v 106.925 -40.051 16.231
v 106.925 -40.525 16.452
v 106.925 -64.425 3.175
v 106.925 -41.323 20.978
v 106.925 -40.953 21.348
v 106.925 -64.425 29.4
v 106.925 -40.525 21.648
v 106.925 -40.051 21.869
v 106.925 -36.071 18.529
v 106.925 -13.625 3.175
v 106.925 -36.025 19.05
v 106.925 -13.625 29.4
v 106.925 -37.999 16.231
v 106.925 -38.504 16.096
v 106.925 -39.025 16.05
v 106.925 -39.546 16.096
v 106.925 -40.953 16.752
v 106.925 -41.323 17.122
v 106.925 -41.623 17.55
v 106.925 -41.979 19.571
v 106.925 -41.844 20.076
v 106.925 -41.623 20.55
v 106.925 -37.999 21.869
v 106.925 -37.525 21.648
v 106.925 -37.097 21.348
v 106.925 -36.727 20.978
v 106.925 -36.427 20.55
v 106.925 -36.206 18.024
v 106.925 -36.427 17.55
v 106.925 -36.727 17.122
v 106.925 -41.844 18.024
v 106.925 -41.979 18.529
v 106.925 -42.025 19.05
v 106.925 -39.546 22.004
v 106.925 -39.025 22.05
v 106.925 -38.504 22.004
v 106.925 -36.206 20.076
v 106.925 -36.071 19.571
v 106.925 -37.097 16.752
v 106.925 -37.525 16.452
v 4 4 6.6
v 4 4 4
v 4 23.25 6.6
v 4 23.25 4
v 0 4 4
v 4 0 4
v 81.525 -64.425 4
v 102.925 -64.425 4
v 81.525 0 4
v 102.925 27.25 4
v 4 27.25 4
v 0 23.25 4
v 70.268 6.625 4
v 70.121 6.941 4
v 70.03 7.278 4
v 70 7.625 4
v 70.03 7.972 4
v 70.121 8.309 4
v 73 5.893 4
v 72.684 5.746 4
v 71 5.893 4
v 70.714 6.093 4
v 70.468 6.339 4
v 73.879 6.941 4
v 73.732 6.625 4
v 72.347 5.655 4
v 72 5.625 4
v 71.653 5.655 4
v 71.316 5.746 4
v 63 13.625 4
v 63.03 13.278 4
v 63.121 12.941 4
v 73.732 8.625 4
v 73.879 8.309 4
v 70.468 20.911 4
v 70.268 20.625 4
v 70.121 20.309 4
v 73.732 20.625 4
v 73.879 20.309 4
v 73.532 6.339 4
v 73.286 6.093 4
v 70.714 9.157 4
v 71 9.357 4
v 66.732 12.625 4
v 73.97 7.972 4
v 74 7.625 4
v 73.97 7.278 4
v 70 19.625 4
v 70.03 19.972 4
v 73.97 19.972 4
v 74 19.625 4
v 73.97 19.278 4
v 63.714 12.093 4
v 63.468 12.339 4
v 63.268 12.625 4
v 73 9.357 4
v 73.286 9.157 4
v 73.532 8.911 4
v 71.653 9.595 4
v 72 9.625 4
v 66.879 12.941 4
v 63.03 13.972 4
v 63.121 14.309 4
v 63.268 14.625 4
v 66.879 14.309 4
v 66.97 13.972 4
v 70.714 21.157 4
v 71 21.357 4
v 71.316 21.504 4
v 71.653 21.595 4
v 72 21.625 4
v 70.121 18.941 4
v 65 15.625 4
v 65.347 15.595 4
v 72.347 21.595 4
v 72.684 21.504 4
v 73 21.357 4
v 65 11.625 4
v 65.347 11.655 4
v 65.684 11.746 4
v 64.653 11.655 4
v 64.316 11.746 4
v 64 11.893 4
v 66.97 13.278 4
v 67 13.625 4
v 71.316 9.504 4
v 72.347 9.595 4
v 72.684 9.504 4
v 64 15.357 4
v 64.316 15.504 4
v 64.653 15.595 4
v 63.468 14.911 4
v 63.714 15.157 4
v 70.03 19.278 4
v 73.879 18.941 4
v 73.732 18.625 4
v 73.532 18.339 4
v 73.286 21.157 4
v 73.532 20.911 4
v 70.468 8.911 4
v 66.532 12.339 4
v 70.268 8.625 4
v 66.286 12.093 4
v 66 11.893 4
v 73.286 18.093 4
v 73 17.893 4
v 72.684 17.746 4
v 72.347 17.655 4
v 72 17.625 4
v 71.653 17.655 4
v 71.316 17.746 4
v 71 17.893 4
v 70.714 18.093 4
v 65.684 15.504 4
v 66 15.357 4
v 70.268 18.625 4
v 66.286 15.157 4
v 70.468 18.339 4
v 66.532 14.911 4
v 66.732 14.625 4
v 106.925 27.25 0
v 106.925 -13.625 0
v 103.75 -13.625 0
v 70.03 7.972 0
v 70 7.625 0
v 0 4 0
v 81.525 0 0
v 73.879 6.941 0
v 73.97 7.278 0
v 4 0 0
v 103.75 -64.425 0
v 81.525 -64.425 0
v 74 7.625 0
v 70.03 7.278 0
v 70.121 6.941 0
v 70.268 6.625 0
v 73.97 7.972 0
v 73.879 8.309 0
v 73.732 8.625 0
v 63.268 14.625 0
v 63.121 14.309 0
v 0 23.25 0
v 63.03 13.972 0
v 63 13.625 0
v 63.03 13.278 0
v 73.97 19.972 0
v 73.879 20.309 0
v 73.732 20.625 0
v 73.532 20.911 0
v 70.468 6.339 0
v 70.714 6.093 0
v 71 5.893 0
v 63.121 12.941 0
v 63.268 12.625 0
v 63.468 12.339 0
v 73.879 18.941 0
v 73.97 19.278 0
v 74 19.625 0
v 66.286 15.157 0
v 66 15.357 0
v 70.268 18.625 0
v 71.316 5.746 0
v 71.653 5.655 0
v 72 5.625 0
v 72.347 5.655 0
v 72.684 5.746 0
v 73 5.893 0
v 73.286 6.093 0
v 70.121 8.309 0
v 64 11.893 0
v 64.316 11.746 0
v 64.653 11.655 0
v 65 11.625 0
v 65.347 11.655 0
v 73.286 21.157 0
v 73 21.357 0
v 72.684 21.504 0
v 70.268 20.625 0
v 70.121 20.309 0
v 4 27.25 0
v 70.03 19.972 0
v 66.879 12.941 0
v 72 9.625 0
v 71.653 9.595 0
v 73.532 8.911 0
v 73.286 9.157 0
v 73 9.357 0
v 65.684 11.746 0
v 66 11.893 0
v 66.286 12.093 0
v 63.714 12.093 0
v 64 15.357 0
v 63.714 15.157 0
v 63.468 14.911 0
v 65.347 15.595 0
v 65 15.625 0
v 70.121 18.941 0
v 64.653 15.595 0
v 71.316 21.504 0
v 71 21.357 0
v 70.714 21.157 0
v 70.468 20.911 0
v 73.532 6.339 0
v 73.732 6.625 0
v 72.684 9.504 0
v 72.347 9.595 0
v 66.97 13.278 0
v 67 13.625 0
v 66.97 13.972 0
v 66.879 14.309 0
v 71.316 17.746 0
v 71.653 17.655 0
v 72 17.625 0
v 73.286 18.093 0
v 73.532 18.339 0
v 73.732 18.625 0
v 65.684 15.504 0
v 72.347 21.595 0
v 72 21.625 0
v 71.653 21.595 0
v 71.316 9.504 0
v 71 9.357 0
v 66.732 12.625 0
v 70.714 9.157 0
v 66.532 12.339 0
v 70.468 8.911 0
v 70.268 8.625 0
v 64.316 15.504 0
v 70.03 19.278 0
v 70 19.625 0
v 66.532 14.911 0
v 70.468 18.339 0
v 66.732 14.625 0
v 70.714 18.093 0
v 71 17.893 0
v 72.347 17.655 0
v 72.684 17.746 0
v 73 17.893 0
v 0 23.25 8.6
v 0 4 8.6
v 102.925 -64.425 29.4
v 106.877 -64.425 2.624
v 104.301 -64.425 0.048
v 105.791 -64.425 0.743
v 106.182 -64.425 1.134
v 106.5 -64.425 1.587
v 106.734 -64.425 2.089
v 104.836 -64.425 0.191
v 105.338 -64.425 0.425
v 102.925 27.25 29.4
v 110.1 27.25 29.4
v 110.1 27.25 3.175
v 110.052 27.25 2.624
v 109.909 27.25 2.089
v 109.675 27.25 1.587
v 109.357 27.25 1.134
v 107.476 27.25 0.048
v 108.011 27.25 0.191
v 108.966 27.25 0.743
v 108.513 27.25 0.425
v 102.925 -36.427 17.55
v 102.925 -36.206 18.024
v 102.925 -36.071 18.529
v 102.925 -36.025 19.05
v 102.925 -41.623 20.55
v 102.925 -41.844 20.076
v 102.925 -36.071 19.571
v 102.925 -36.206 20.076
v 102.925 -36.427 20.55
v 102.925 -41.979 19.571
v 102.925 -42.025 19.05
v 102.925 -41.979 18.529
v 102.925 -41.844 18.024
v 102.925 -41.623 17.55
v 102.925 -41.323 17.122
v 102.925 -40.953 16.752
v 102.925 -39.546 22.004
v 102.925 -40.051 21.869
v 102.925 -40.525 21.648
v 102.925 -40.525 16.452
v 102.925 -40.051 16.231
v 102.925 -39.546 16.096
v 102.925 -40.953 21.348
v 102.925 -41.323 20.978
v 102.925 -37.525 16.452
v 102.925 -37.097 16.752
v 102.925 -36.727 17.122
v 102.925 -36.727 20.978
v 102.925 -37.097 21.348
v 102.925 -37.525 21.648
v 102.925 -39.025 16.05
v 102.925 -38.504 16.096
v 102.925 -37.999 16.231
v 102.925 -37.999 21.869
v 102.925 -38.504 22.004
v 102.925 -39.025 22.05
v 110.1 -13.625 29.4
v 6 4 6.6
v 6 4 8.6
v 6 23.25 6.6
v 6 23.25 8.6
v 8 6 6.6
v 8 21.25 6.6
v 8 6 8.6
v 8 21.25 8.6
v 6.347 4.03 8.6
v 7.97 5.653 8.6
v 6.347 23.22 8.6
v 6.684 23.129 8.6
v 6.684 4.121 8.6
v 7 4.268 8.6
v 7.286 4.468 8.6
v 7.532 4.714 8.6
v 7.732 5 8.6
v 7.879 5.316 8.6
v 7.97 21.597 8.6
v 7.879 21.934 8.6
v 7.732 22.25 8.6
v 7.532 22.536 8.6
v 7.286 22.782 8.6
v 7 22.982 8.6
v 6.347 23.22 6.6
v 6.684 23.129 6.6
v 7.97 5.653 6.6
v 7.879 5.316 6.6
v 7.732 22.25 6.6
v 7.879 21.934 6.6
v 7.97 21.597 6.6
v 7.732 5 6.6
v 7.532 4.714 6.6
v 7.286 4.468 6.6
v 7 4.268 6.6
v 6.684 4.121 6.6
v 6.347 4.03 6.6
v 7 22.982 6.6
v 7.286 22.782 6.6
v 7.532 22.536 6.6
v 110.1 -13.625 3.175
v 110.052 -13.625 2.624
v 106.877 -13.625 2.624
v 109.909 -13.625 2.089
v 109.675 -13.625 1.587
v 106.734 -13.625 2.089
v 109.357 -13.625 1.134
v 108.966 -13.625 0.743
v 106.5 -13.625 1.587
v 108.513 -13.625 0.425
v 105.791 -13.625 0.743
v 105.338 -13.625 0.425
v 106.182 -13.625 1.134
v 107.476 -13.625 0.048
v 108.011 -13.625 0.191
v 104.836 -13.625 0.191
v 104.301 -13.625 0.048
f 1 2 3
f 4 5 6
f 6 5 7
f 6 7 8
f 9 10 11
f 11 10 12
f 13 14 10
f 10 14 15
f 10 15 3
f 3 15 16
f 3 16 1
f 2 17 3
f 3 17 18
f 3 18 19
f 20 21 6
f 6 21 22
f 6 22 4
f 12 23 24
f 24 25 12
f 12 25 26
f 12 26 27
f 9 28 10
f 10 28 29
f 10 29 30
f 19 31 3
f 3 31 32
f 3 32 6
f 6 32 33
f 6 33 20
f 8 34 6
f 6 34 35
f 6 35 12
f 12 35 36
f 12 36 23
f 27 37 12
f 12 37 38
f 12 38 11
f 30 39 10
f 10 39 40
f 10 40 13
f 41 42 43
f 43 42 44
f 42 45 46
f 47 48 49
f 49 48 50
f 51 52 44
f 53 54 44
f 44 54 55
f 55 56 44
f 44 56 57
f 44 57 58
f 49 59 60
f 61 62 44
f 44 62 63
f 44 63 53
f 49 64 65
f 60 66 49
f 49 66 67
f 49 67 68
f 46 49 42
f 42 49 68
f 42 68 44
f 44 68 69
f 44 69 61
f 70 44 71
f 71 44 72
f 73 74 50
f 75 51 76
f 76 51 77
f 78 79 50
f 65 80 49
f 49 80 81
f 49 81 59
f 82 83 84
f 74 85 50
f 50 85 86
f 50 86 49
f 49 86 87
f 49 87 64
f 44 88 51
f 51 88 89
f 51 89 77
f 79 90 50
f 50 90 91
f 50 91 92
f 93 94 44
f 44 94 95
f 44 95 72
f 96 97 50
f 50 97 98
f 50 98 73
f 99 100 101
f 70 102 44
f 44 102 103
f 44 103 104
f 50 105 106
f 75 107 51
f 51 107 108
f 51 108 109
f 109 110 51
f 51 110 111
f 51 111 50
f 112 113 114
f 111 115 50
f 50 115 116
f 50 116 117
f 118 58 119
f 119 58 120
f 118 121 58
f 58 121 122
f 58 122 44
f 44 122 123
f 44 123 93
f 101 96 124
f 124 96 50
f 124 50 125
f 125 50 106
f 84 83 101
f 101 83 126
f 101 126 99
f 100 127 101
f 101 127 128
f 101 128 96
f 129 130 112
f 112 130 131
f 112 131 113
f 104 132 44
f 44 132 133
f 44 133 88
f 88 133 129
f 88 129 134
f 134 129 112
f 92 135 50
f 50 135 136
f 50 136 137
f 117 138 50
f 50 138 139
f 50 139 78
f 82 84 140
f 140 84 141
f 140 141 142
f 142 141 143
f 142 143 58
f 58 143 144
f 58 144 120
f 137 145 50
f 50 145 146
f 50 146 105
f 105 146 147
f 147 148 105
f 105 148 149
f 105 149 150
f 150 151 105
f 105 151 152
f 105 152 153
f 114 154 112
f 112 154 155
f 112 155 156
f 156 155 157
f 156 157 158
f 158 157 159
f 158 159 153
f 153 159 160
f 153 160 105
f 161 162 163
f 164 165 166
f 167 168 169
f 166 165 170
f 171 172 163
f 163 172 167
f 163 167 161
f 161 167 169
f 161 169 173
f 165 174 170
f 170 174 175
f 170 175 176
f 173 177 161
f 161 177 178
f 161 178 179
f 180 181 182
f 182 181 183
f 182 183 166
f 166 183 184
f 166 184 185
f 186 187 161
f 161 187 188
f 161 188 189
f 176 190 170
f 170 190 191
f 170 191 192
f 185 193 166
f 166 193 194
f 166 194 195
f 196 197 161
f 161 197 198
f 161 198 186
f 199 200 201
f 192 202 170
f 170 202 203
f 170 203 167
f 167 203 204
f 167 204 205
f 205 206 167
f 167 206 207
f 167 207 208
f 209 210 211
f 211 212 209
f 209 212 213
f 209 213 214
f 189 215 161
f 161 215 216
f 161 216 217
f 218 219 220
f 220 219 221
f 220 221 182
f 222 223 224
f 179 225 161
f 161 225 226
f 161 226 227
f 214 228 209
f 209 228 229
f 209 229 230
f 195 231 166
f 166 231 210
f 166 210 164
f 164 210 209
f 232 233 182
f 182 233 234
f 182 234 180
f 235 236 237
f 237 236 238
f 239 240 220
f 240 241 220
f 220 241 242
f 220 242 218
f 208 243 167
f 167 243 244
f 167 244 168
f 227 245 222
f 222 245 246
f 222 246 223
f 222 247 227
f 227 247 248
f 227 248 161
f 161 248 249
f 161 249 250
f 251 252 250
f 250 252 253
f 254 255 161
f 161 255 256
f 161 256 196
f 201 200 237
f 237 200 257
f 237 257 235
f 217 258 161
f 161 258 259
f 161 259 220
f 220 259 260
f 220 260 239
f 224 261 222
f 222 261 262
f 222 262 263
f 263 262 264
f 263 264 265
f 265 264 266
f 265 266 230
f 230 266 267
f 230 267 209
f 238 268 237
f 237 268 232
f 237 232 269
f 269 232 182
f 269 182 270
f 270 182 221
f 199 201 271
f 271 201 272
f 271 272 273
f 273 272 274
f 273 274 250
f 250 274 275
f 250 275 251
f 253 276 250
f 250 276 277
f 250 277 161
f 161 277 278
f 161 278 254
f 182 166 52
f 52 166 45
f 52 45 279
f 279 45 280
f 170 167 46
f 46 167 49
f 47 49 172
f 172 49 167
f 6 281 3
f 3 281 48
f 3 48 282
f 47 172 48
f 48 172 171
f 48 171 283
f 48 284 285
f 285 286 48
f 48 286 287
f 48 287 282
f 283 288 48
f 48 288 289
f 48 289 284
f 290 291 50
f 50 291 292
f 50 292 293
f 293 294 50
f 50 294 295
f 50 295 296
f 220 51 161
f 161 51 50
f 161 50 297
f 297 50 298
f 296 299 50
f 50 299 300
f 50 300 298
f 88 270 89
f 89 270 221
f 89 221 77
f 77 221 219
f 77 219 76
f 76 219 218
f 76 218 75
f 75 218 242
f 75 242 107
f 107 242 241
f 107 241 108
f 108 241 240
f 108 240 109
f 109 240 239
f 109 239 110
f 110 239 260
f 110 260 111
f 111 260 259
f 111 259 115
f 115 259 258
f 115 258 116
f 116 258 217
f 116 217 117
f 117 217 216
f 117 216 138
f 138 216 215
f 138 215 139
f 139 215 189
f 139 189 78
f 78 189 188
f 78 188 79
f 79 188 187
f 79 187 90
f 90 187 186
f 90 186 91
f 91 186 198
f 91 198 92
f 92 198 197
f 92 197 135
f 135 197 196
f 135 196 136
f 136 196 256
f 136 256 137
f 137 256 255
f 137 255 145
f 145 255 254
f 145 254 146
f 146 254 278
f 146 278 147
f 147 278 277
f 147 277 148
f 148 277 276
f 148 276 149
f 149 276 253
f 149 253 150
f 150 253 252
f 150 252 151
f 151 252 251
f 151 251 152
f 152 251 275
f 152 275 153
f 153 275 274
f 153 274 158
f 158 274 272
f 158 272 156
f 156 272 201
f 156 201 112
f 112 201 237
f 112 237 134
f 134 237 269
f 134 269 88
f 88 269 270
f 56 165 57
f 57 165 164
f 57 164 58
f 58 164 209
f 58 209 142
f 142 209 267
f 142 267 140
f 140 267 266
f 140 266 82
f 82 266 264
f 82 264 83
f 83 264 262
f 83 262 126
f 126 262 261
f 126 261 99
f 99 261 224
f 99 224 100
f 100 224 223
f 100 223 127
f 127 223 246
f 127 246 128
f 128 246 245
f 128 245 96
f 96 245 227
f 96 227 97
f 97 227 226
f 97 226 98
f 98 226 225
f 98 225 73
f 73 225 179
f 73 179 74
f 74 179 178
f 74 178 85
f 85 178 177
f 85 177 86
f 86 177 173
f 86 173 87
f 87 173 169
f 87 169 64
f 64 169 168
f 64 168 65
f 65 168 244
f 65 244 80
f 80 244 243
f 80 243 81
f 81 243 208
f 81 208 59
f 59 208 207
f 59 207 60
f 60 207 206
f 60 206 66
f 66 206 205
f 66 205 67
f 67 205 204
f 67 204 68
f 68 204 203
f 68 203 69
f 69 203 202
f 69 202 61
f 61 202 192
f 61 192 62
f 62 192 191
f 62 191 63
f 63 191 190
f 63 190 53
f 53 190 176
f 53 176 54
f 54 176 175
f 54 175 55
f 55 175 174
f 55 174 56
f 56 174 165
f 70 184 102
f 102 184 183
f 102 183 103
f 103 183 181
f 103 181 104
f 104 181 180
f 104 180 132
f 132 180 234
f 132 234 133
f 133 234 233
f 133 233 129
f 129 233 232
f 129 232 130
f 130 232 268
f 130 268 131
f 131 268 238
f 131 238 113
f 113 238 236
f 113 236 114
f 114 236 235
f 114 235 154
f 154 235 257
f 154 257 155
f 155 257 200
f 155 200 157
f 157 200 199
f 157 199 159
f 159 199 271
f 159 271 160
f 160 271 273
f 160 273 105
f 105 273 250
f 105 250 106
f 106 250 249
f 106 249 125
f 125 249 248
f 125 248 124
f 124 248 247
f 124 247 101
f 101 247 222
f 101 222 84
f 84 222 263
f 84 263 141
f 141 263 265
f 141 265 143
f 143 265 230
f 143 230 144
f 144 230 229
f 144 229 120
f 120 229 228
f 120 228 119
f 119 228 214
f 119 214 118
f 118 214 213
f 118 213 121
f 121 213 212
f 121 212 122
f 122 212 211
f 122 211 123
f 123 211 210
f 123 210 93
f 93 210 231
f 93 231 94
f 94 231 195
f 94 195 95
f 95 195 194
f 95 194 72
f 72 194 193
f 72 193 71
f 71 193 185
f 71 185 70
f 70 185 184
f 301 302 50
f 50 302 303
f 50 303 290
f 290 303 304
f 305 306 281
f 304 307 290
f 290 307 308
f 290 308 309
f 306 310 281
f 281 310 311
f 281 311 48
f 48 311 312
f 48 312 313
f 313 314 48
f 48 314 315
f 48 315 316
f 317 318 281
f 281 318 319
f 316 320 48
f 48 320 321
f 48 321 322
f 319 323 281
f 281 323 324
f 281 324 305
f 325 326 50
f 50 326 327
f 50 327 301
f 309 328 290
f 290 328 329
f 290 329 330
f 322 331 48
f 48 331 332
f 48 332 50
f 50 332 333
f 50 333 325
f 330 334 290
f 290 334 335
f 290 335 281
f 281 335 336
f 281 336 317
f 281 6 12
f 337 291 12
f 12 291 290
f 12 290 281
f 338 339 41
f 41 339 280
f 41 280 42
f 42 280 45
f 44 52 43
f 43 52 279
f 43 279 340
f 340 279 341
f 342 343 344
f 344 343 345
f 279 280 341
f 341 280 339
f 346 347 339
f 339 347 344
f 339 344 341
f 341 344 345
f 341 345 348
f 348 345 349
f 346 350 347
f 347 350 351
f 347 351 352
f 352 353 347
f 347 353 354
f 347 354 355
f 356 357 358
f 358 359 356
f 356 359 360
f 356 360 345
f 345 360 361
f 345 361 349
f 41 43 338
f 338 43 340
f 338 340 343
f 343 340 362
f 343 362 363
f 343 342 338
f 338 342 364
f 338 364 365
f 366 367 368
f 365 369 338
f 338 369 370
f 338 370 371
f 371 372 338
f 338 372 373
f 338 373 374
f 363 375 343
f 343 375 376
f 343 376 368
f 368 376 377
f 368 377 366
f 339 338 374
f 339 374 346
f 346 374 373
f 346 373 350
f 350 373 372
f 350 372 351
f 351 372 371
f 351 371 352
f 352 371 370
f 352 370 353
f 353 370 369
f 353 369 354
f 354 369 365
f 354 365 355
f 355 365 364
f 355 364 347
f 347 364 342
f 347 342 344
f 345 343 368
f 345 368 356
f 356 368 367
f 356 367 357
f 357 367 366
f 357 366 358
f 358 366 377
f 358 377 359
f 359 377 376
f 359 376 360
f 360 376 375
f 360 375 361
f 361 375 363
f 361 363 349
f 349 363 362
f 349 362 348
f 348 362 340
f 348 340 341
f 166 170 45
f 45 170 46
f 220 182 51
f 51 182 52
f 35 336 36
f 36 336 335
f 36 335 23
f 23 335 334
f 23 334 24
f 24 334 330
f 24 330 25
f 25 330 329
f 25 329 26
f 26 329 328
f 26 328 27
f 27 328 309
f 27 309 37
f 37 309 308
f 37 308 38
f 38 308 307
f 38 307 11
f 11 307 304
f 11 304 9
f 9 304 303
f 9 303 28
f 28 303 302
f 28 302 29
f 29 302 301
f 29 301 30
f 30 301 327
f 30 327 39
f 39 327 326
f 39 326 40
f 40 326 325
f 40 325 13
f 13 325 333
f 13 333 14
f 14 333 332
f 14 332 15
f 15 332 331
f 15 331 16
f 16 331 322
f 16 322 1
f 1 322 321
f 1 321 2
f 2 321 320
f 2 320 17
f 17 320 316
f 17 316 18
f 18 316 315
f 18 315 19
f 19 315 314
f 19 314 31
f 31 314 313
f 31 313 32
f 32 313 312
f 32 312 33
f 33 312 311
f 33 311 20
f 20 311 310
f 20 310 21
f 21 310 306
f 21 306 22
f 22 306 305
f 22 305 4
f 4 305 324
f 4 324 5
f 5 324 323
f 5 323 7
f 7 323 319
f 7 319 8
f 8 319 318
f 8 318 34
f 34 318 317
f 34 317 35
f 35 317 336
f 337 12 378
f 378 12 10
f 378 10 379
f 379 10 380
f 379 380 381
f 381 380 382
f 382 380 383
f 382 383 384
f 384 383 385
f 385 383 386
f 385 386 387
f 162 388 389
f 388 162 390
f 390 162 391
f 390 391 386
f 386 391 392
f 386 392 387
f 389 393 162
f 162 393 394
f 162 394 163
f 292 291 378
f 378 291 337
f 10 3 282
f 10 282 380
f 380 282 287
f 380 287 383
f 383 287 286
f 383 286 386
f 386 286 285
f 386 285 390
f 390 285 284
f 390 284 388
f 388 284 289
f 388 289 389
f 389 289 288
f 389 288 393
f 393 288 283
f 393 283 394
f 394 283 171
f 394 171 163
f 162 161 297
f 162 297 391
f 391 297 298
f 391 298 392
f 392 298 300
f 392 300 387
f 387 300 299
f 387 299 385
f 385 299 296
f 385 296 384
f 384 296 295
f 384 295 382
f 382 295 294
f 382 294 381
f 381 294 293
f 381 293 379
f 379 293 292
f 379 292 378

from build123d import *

# Parameters (mm, degrees)
SKETCH1_R                      = 2
PROFILEBOSS_EXTRUDE1_DEPTH     = 4
CORNERBOSS_EXTRUDE2_DEPTH      = 0.0001
CORNERBOSS_EXTRUDE2_DEPTH_BACK = 25.4
SKETCH2_W                      = 4
SKETCH2_H                      = 91.675
BOSS_EXTRUDE3_DEPTH            = 0.0001
BOSS_EXTRUDE3_DEPTH_BACK       = 2.6
SKETCH3_W                      = 4
SKETCH3_H                      = 19.25
BOSS_EXTRUDE4_DEPTH            = 0.0001
BOSS_EXTRUDE4_DEPTH_BACK       = 2
SKETCH5_W                      = 8
SKETCH5_H                      = 19.25
FILLET1_R                      = 2
CHAMFER1_SIZE                  = 4
VSMOUNTHOLECUT_EXTRUDE1_REACH  = 126.934
SKETCH6_R                      = 3
SKETCH7_W                      = 29.4
SKETCH7_H                      = 40.875
THICKSIDEBOSS_EXTRUDE5_DEPTH   = 3.175
FILLET3_R                      = 3.175


with BuildPart() as part:
    # Sketch1 → ProfileBoss-Extrude1 (new body)
    with BuildSketch(Plane.XY):
        Polygon((0, 0), (81.525, 0), (81.525, -64.425), (106.925, -64.425), (106.925, 27.25), (0, 27.25), align=None)
        with Locations((72, 19.625)):
            Circle(SKETCH1_R, mode=Mode.SUBTRACT)
        with Locations((72, 7.625)):
            Circle(SKETCH1_R, mode=Mode.SUBTRACT)
        with Locations((65, 13.625)):
            Circle(SKETCH1_R, mode=Mode.SUBTRACT)
    extrude(amount=PROFILEBOSS_EXTRUDE1_DEPTH)

    # Sketch2 → CornerBoss-Extrude2 (add, two sides: drawn at the far end of the back side and taken through both)
    with BuildSketch(Plane(origin=(0, 0, 4), x_dir=(-1, 0, 0), z_dir=(0, 0, -1)).offset(-CORNERBOSS_EXTRUDE2_DEPTH_BACK)):
        with Locations((-104.925, -18.5875)):
            Rectangle(SKETCH2_W, SKETCH2_H)
    extrude(amount=CORNERBOSS_EXTRUDE2_DEPTH + CORNERBOSS_EXTRUDE2_DEPTH_BACK)

    # Sketch3 → Boss-Extrude3 (add, two sides: drawn at the far end of the back side and taken through both)
    with BuildSketch(Plane(origin=(0, 0, 4), x_dir=(-1, 0, 0), z_dir=(0, 0, -1)).offset(-BOSS_EXTRUDE3_DEPTH_BACK)):
        with Locations((-2, 13.625)):
            Rectangle(SKETCH3_W, SKETCH3_H)
    extrude(amount=BOSS_EXTRUDE3_DEPTH + BOSS_EXTRUDE3_DEPTH_BACK)

    # Sketch5 → Boss-Extrude4 (add, two sides: drawn at the far end of the back side and taken through both)
    with BuildSketch(Plane(origin=(0, 0, 6.6), x_dir=(-1, 0, 0), z_dir=(0, 0, -1)).offset(-BOSS_EXTRUDE4_DEPTH_BACK)):
        with Locations((-4, 13.625)):
            Rectangle(SKETCH5_W, SKETCH5_H)
    extrude(amount=BOSS_EXTRUDE4_DEPTH + BOSS_EXTRUDE4_DEPTH_BACK)

    # Fillet1
    fillet1_edges = [part.edges().sort_by_distance(p)[0] for p in [
        (8, 4, 7.59995),
        (8, 23.25, 7.59995),
    ]]
    fillet(fillet1_edges, radius=FILLET1_R)

    # Chamfer1
    chamfer1_edges = [part.edges().sort_by_distance(p)[0] for p in [
        (0, 27.25, 2),
        (0, 0, 2),
    ]]
    chamfer(chamfer1_edges, length=CHAMFER1_SIZE)

    # Sketch6 → VSMountHoleCut-Extrude1 (cut, up to next)
    with BuildSketch(Plane.ZY.offset(-102.925), mode=Mode.PRIVATE) as vsmountholecut_extrude1_sk1:
        with Locations((19.05, -39.025)):
            Circle(SKETCH6_R)
    vsmountholecut_extrude1_tool1 = extrude(vsmountholecut_extrude1_sk1.sketch, amount=-VSMOUNTHOLECUT_EXTRUDE1_REACH, mode=Mode.PRIVATE) & part.part
    add(vsmountholecut_extrude1_tool1.solids().sort_by_distance((102.925, -39.025, 19.05))[0], mode=Mode.SUBTRACT)

    # Sketch7 → ThickSideBoss-Extrude5 (add)
    with BuildSketch(Plane(origin=(106.925, 0, 0), x_dir=(0, 0, -1), z_dir=(1, 0, 0))):
        with Locations((-14.7, 6.8125)):
            Rectangle(SKETCH7_W, SKETCH7_H)
    extrude(amount=THICKSIDEBOSS_EXTRUDE5_DEPTH)

    # Fillet3
    fillet3_edges = [part.edges().sort_by_distance(p)[0] for p in [
        (106.925, -39.025, 0),
        (110.1, 6.8125, 0),
    ]]
    fillet(fillet3_edges, radius=FILLET3_R - 0.0001)  # a hair under: the kernel refuses the full size


solid = part.part
